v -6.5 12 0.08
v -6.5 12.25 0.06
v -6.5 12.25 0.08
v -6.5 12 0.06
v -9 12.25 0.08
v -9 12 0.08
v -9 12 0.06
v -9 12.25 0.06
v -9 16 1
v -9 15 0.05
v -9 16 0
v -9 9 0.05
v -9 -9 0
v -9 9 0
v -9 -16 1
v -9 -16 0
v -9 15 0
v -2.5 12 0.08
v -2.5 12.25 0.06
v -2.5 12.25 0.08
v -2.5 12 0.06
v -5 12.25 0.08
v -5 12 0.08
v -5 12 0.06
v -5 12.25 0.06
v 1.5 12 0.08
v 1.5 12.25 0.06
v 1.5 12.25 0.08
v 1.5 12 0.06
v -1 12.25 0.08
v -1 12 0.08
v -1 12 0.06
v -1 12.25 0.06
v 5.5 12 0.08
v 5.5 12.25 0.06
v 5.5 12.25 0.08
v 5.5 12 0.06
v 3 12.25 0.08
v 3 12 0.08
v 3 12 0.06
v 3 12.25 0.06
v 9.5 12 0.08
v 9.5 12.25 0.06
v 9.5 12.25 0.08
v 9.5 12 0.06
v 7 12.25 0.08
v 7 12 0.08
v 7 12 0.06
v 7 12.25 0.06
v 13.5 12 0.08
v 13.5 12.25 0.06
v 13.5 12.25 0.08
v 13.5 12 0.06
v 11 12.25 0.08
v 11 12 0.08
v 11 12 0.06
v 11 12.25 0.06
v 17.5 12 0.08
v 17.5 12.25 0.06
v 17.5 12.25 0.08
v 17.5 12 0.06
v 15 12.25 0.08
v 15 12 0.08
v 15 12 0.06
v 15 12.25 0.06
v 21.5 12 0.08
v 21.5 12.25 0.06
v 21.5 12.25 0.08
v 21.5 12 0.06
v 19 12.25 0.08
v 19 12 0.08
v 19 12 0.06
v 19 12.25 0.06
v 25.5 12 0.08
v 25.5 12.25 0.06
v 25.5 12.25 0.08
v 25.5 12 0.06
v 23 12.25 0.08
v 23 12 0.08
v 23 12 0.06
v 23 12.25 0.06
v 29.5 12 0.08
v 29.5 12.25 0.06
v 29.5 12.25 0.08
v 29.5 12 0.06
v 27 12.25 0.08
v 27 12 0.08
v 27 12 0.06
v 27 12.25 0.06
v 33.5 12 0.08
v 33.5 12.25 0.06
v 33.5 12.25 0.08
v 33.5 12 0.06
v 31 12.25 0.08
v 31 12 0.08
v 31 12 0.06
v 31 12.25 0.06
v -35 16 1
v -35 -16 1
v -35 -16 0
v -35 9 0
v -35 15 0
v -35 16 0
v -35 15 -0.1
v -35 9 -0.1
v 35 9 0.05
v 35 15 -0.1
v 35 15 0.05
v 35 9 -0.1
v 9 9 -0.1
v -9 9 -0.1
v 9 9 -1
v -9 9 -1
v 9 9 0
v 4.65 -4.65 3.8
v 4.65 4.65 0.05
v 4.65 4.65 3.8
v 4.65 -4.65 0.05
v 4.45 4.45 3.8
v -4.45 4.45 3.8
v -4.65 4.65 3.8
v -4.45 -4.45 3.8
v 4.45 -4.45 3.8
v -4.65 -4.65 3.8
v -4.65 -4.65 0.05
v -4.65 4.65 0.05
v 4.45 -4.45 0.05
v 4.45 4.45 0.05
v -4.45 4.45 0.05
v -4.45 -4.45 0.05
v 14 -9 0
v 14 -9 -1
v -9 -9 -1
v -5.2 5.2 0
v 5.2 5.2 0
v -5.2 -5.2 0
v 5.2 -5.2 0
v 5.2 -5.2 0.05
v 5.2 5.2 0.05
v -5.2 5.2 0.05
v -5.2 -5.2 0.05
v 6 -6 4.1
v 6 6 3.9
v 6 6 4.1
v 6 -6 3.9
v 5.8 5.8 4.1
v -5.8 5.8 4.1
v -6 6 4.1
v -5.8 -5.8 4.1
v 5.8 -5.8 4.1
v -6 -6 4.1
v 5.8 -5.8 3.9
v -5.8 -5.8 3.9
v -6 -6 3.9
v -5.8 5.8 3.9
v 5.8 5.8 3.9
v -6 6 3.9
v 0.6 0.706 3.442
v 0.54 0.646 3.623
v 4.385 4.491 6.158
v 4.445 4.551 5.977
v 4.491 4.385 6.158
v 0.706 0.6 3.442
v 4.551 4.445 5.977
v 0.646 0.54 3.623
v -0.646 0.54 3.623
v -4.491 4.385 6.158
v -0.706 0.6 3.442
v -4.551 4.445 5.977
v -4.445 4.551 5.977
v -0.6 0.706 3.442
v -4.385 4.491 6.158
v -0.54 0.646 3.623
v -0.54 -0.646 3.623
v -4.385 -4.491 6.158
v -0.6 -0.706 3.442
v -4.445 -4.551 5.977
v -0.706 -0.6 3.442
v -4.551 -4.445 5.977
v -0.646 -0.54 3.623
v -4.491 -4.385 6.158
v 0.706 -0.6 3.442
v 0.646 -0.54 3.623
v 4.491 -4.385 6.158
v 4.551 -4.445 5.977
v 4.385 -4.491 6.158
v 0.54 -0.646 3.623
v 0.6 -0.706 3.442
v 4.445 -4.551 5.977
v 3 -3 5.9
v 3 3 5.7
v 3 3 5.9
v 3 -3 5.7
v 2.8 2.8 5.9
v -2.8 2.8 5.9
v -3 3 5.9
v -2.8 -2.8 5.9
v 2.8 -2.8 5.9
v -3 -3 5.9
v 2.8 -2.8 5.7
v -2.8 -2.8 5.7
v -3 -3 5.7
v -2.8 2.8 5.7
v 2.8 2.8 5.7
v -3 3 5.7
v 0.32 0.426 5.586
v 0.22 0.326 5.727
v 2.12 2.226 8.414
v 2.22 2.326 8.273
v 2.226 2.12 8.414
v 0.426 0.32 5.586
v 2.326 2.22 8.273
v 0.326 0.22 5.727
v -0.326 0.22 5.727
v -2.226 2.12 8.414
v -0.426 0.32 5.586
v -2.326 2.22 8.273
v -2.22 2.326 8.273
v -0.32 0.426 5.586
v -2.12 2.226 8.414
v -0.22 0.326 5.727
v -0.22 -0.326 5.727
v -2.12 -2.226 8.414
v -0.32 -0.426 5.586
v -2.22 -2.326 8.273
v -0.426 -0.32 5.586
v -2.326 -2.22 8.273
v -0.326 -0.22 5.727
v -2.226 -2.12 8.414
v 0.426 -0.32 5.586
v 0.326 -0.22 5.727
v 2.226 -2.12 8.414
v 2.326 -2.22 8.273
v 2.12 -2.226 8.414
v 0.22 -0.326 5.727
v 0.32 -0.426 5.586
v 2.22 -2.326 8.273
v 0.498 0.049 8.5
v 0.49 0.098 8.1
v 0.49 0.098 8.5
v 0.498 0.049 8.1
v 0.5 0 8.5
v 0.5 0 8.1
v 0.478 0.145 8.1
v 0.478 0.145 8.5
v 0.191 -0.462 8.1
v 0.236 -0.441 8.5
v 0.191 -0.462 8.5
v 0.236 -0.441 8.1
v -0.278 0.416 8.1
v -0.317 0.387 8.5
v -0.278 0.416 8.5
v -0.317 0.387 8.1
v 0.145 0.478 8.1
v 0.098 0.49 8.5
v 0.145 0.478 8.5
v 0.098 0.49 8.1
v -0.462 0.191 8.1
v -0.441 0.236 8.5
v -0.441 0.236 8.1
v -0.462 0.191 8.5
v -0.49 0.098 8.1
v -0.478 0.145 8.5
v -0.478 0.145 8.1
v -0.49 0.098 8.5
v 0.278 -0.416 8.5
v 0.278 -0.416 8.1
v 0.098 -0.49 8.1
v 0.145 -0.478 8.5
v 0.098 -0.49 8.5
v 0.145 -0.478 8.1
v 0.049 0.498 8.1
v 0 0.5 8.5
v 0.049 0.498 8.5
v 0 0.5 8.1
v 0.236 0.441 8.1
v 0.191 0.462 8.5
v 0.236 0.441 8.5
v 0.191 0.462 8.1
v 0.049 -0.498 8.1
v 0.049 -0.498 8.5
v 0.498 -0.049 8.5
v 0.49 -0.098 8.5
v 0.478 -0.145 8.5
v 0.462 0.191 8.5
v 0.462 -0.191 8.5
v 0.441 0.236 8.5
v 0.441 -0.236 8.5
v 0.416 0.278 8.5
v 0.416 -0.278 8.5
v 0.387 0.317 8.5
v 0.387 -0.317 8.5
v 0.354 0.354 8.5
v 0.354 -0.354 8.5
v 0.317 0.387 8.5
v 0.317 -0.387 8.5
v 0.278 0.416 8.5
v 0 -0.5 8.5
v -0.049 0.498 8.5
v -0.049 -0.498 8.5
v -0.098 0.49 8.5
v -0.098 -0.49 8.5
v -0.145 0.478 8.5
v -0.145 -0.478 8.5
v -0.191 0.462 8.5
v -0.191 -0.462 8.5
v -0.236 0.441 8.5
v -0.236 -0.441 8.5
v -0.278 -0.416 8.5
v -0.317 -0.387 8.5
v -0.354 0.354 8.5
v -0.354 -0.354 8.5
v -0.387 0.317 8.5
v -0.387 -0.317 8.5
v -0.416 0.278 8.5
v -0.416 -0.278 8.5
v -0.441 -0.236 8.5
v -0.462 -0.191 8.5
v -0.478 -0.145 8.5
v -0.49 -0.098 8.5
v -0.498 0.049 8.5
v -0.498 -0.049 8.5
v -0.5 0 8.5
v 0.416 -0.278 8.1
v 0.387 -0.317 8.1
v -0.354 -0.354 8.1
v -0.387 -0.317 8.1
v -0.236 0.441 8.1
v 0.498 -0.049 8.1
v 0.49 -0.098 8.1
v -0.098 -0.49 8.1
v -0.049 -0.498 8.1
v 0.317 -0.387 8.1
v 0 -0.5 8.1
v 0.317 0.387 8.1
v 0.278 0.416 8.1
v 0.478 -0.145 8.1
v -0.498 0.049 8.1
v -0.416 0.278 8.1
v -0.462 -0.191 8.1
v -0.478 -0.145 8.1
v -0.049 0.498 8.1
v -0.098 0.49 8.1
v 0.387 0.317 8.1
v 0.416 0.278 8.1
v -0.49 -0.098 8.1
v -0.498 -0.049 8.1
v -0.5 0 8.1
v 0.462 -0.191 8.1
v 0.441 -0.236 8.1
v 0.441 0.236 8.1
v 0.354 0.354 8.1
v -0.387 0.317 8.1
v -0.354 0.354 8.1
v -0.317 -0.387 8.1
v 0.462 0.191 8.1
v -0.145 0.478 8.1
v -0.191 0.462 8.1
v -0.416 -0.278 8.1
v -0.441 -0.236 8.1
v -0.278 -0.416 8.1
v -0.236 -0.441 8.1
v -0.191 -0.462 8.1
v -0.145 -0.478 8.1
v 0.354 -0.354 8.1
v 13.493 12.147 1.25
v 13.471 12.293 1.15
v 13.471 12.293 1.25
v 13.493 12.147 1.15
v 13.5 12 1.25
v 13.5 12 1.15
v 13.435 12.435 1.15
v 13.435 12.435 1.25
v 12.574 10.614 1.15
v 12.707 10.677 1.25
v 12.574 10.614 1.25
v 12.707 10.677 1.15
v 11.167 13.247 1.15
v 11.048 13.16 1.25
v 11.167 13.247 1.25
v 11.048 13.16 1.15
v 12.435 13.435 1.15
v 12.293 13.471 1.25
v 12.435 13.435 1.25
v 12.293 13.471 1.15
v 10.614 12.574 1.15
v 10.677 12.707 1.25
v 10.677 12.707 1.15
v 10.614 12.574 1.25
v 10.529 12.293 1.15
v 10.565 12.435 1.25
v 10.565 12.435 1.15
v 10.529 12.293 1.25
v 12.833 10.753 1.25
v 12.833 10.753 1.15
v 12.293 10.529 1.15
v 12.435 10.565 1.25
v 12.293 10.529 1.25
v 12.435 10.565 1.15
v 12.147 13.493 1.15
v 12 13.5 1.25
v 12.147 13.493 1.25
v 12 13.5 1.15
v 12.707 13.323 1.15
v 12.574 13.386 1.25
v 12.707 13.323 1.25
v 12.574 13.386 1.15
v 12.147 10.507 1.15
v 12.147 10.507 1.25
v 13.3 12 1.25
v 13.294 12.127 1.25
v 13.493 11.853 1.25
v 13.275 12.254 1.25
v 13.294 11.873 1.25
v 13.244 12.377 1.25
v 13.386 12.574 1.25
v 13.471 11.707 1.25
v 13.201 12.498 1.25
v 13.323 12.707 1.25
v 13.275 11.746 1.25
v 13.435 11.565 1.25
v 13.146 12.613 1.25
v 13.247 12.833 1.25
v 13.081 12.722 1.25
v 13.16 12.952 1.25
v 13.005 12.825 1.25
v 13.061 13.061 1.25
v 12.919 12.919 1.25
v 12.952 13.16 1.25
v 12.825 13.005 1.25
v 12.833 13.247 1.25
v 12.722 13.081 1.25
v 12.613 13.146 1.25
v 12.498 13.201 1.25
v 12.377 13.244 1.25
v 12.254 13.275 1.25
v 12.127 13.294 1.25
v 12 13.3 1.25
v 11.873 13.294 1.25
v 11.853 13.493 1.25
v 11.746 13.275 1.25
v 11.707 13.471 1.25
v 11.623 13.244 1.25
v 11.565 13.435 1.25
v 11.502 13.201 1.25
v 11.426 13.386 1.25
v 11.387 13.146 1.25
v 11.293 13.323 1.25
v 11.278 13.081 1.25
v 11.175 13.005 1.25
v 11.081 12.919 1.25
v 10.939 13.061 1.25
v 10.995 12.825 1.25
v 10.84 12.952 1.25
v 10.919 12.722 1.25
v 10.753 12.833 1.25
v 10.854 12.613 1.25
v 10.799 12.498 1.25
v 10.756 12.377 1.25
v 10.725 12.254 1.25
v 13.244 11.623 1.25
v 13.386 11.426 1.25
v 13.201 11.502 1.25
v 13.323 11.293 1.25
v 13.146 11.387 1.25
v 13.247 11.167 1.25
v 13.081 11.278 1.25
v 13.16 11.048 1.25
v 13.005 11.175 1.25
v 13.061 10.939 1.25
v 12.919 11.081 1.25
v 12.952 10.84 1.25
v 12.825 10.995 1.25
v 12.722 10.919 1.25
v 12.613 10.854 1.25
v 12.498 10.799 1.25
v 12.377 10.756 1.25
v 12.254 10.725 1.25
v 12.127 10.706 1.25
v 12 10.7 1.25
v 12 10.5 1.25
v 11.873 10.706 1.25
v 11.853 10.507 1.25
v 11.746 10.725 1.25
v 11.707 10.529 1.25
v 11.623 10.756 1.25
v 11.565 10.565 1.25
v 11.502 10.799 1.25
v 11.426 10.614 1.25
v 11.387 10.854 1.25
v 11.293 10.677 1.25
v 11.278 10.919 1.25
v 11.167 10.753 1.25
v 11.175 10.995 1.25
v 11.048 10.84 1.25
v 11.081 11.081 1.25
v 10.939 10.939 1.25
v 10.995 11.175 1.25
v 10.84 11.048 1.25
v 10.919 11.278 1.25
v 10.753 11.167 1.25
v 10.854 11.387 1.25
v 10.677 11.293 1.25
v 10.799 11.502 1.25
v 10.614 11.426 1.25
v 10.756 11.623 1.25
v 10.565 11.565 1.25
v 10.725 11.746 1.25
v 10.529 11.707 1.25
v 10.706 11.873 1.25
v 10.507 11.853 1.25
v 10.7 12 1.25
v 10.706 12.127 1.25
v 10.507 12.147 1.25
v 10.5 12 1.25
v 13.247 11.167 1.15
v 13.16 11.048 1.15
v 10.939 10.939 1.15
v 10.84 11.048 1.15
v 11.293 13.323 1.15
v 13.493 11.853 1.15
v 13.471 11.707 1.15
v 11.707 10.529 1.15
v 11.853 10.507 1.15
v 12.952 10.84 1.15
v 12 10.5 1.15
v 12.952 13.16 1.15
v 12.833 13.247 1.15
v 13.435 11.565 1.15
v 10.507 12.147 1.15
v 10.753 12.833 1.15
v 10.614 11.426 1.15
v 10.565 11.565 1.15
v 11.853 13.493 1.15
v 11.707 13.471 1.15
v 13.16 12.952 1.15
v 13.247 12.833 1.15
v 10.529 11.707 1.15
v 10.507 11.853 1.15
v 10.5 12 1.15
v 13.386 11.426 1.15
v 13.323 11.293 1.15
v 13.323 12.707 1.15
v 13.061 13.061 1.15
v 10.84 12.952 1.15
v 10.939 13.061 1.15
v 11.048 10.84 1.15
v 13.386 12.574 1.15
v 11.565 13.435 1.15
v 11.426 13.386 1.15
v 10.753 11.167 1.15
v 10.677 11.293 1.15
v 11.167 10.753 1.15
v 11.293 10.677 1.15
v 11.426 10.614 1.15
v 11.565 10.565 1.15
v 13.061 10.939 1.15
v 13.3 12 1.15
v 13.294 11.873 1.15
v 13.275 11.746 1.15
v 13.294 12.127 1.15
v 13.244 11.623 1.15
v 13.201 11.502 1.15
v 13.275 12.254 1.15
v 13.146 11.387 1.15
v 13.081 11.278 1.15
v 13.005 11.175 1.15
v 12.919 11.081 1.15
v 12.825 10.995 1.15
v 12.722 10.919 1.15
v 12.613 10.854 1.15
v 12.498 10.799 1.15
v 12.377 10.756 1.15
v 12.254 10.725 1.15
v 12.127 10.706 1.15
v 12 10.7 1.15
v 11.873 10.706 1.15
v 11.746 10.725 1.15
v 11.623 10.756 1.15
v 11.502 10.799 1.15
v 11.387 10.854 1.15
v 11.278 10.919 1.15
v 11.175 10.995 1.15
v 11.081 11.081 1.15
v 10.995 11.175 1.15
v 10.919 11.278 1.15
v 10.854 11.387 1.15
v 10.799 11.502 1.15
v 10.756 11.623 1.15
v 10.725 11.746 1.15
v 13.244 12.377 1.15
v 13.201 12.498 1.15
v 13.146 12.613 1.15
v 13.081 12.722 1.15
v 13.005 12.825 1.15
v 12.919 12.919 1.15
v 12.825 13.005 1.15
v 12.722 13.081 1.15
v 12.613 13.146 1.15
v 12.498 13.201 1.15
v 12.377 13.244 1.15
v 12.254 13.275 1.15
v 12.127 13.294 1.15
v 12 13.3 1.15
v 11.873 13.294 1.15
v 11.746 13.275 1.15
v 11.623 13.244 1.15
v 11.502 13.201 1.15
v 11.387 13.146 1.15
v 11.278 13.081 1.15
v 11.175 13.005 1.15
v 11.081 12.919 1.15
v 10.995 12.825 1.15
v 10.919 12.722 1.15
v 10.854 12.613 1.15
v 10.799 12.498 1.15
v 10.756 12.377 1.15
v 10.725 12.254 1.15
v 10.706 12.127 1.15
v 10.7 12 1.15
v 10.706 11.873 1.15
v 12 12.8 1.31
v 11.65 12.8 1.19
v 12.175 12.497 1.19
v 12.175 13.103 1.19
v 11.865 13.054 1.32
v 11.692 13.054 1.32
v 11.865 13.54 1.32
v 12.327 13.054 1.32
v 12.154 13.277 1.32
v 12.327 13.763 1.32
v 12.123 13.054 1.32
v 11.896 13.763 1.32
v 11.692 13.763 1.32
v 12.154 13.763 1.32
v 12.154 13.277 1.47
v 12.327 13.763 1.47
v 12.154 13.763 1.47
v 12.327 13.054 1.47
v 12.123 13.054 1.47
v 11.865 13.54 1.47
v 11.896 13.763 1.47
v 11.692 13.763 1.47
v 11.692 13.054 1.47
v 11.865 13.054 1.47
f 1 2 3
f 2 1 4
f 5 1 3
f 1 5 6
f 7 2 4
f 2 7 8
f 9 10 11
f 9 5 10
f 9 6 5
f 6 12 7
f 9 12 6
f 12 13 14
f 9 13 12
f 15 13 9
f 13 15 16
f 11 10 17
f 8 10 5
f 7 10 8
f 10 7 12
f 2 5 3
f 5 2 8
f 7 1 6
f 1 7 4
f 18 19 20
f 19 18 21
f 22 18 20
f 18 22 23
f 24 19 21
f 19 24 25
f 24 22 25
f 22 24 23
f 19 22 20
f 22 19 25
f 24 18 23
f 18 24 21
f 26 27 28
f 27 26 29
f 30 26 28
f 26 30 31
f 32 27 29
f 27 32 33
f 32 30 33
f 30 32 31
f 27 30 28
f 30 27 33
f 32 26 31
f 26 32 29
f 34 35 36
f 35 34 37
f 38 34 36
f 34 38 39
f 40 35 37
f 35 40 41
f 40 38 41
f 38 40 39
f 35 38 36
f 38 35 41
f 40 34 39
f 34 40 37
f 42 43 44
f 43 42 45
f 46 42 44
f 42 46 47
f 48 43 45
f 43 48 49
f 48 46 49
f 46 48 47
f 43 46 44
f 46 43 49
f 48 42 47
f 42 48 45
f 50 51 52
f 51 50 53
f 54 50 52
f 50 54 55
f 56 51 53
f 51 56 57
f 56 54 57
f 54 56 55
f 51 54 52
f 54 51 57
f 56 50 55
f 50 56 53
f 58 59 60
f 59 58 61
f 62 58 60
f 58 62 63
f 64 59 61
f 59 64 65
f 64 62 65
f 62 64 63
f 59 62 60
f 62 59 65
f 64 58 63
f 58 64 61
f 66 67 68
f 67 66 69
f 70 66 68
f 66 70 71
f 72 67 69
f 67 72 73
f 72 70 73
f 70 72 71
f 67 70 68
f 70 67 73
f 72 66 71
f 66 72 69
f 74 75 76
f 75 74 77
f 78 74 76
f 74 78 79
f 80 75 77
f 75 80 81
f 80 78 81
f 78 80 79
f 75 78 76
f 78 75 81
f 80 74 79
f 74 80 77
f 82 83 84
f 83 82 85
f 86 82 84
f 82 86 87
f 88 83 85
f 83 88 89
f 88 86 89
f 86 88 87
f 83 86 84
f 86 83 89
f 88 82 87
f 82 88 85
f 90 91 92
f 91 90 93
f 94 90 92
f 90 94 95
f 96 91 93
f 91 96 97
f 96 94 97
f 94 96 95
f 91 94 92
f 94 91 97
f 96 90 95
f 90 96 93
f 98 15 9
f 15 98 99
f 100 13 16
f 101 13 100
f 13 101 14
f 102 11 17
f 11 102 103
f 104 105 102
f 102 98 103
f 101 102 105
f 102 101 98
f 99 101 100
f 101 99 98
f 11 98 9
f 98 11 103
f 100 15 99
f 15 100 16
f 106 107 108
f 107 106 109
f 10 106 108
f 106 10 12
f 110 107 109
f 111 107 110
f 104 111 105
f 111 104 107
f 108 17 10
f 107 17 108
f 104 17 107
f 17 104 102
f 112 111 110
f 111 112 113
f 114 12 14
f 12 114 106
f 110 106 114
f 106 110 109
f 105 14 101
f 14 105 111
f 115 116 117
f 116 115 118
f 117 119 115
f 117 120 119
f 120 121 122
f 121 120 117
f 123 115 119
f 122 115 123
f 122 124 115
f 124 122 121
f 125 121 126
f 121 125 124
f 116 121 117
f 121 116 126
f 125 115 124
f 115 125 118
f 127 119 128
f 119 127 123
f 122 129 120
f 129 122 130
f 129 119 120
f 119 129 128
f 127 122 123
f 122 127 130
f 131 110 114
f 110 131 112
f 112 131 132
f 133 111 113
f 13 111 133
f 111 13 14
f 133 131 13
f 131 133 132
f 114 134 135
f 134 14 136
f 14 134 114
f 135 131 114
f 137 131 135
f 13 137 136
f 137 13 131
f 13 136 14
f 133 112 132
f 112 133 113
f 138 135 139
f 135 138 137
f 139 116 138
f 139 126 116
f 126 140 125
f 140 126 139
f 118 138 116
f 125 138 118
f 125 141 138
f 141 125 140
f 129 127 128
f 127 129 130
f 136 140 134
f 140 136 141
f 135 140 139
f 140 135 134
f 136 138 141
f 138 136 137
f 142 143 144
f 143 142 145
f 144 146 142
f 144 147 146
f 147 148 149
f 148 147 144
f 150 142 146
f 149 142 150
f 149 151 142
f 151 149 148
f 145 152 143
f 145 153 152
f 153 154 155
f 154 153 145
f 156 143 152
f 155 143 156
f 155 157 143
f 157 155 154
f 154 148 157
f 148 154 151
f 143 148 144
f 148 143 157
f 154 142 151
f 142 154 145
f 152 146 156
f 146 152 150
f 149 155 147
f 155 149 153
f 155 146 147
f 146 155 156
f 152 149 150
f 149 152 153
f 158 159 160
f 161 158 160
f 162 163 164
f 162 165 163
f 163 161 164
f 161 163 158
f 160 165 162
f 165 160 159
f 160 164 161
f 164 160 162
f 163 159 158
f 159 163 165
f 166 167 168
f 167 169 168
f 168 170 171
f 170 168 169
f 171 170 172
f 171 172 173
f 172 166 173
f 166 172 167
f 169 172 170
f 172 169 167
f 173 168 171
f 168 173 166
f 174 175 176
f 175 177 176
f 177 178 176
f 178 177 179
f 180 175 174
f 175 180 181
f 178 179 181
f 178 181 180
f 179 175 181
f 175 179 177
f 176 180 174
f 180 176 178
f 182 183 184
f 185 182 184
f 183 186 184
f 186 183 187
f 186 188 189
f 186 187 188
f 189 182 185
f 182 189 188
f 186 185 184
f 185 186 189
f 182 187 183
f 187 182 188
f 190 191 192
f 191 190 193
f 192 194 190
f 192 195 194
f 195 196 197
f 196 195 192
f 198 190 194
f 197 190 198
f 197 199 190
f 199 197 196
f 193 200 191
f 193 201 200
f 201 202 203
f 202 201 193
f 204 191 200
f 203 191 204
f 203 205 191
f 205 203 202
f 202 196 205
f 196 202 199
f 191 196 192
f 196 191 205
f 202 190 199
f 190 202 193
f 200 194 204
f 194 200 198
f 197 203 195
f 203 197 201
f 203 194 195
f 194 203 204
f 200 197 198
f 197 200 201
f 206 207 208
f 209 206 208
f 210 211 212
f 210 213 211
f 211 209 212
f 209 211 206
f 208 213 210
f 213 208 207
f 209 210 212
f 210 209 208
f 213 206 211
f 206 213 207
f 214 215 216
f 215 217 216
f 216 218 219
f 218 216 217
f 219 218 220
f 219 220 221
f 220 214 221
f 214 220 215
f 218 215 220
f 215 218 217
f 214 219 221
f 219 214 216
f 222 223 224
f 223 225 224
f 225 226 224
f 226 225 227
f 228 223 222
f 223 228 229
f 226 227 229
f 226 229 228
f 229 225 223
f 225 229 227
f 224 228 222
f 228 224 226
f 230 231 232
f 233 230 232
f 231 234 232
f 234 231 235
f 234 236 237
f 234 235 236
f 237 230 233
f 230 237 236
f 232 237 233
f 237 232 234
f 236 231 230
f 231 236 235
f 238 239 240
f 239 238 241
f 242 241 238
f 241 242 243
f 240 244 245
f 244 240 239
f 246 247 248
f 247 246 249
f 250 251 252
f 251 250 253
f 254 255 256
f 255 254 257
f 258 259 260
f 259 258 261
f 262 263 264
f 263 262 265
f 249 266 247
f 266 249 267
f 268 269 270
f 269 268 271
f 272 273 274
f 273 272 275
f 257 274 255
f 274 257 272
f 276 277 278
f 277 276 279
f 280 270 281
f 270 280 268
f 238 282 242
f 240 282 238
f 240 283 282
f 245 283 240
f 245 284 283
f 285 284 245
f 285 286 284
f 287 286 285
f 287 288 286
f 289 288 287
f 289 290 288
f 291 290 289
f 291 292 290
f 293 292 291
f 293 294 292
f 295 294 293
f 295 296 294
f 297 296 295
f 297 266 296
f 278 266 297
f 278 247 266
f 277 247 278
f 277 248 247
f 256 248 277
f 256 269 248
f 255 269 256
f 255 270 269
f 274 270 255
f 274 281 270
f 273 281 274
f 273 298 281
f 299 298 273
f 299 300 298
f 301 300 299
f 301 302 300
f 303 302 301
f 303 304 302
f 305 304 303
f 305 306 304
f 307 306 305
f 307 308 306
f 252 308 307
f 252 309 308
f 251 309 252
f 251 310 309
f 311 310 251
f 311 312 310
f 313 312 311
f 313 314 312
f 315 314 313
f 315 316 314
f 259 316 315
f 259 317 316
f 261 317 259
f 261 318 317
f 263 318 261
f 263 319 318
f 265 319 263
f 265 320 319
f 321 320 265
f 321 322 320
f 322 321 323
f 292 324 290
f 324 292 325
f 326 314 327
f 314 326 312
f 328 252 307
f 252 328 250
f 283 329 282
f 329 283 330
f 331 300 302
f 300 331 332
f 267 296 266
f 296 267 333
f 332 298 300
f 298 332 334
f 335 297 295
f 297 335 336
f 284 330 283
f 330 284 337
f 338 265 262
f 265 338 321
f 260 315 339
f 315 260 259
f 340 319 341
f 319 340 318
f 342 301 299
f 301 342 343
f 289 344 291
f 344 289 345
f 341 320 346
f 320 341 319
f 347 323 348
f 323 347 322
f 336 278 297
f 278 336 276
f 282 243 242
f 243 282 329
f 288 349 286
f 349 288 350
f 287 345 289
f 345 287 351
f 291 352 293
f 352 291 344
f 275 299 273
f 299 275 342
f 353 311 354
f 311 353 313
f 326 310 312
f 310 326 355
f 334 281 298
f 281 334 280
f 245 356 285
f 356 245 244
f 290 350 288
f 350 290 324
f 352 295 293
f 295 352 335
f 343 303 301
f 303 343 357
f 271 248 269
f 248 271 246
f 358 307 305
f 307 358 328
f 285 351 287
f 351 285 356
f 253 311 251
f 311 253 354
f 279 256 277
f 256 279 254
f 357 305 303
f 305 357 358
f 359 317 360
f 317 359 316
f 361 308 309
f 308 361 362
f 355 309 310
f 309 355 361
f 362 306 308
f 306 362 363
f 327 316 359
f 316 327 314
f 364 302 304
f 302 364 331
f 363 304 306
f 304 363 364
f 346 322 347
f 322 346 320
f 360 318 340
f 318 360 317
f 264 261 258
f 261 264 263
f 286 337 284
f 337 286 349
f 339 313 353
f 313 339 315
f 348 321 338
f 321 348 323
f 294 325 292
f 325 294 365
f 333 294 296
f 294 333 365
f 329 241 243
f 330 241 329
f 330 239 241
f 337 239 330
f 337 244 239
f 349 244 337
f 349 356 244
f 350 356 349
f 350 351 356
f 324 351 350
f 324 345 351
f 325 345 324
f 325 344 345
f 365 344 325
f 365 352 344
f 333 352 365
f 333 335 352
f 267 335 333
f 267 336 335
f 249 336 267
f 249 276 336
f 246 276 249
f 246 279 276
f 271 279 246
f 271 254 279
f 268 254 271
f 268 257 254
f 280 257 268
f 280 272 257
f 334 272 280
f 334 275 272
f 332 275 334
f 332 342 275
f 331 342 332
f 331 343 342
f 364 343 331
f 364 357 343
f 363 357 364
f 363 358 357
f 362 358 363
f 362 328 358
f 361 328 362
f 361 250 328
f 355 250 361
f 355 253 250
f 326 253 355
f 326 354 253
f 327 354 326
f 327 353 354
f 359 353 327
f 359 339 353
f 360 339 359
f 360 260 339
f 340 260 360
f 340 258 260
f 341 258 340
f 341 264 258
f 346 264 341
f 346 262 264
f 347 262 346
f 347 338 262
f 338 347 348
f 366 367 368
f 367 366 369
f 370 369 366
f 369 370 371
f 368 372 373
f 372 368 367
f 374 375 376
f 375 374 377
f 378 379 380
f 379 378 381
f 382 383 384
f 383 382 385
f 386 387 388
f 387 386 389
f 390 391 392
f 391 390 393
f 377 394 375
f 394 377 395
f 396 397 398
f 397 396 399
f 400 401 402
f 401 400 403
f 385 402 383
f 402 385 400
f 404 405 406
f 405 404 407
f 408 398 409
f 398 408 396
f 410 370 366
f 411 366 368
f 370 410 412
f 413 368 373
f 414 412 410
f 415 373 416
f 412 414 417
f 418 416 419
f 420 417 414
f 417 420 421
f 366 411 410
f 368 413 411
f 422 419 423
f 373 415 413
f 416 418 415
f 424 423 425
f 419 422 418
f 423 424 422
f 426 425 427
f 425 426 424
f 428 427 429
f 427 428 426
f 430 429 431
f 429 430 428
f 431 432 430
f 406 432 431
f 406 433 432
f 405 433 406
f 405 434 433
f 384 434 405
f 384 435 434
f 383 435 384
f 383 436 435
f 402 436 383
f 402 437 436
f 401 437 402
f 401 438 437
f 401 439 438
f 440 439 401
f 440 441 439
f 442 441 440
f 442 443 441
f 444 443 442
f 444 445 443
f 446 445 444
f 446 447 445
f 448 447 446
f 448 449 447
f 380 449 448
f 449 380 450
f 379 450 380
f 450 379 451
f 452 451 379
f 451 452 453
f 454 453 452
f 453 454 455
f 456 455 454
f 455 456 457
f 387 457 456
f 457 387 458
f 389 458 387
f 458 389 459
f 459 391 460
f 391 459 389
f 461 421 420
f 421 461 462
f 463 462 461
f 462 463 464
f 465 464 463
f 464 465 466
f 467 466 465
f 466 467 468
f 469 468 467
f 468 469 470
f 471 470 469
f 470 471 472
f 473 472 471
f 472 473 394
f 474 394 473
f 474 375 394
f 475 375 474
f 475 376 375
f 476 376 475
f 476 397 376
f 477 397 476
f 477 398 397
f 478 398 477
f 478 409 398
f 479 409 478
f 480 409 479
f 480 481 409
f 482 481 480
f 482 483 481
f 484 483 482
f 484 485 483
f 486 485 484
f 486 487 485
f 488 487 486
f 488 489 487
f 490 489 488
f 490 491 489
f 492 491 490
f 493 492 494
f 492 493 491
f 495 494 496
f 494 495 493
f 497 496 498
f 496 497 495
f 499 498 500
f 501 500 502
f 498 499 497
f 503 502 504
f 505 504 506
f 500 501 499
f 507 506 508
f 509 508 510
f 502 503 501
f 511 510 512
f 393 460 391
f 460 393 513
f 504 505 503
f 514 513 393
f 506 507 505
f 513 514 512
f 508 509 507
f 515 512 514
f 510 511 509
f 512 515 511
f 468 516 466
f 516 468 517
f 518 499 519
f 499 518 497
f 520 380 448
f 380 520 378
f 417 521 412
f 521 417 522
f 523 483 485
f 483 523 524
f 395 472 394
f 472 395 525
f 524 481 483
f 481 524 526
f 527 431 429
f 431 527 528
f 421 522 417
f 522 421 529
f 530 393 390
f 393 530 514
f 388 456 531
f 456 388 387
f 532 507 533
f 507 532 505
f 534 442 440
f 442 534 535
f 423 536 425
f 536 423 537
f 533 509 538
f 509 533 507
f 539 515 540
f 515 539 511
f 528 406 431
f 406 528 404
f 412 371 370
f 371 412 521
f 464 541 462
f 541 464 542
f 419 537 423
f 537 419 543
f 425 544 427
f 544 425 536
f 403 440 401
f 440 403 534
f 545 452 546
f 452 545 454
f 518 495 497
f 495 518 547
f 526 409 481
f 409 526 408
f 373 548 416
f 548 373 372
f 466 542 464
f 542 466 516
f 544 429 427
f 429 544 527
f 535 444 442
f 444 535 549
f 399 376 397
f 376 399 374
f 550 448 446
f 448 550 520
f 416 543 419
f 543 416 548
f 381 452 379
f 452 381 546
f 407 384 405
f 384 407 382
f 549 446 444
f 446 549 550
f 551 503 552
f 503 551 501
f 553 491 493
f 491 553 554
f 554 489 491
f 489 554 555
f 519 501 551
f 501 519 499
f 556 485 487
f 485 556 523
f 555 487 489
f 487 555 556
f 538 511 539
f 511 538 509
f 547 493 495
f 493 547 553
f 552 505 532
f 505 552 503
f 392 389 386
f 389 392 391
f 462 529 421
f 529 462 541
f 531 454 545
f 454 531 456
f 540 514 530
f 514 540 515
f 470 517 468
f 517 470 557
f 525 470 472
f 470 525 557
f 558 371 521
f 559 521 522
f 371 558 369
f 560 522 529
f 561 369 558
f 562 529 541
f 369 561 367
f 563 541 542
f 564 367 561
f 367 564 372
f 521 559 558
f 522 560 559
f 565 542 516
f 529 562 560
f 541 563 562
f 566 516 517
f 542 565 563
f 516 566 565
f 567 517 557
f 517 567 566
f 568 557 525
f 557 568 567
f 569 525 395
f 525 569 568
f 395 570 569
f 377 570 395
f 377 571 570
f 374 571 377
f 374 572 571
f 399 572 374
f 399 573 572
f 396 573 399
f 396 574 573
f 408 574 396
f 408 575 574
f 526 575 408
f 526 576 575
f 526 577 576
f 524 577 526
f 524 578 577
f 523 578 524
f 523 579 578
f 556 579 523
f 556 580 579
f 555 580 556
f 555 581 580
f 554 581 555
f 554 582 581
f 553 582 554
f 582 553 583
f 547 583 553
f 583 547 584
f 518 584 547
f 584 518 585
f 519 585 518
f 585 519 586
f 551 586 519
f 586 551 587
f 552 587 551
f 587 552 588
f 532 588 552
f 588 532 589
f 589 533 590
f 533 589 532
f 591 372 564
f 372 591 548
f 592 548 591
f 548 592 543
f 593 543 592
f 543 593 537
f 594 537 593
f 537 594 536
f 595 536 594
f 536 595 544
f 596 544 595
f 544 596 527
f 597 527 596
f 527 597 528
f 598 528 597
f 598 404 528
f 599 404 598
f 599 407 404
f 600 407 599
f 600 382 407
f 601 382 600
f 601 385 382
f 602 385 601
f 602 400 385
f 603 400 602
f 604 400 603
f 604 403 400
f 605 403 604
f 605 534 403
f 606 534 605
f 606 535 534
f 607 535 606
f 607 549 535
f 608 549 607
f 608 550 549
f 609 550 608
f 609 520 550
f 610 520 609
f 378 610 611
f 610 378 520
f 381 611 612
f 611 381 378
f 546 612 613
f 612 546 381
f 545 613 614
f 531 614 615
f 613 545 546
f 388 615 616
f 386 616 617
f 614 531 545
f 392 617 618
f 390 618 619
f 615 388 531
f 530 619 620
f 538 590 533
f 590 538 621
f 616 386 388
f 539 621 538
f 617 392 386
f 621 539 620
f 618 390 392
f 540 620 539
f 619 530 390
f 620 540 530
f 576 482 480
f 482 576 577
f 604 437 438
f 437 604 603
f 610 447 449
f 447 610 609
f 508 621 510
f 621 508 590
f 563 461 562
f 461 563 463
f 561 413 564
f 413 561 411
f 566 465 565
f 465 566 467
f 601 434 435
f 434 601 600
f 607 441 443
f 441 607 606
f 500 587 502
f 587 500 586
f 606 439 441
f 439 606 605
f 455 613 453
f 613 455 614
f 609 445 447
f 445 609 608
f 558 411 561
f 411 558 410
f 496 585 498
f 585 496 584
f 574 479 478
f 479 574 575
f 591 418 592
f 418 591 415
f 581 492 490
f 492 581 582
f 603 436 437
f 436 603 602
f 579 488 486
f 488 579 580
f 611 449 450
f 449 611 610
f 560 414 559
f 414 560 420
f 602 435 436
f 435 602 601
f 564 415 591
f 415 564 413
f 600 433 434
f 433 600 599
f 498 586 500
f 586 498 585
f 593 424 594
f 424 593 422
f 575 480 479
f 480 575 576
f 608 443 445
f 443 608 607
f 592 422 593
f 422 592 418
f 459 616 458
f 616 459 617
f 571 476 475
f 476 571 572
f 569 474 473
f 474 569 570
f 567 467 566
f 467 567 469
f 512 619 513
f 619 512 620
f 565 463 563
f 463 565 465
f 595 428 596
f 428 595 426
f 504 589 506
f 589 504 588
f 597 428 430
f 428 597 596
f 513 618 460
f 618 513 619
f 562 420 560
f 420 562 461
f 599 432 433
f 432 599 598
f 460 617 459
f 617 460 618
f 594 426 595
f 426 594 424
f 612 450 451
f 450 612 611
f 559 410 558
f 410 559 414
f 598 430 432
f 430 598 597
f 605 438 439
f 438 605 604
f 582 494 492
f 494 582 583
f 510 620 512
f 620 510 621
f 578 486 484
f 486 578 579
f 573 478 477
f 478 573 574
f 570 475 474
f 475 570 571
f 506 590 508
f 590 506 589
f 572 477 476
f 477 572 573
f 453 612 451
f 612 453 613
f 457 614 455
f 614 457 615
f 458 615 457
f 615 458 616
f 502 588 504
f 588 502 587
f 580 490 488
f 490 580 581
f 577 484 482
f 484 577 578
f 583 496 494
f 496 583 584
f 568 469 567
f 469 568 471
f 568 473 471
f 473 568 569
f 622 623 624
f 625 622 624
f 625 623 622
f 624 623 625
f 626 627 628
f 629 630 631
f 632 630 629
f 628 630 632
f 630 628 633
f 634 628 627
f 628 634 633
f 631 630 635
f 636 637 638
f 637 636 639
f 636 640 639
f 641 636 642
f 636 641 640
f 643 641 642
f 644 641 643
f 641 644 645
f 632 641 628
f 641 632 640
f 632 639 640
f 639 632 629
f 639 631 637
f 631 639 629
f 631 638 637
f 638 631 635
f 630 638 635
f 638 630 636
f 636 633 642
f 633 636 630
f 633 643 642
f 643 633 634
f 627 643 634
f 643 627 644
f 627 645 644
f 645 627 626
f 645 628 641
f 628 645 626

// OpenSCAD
// =============================================================================================================
// MASJID NURUL FALAH SUKATANI — STEP 08: LIMASAN ROOF TRUSS FRAMING
// Parametric Architectural CSG Model (OpenSCAD)
//
// STRICT CIVIL MANDATE: NORTH AT TOP (+Y AXIS)
// 2-TIER LIMASAN ROOF TRUSS (RANGKA BAJA RINGAN / IWF) WITH CLERESTORY PYRAMID FRAME
// =============================================================================================================

$fn = 64;

poly_site = [ [-9, -9], [14, -9], [9, 9], [-9, 9] ];
grid_x = [-4.5, -1.5, 1.5, 4.5];
grid_y = [-4.5, -1.5, 1.5, 4.5];

// --------------------------------------------------------------------
// 1. SURROUNDINGS
// --------------------------------------------------------------------
module surroundings() {
    // West Land (+1.00m elevated neighbor terrain)
    color([0.22, 0.42, 0.24]) {
        translate([-22, 0, 0.5]) cube([26, 32, 1.0], center = true);
    }
    color([0.38, 0.32, 0.26]) {
        translate([-9.1, 0, 0.5]) cube([0.2, 28, 1.0], center = true);
    }
    // North Road 6.0m
    color([0.18, 0.20, 0.24]) {
        translate([-35, 9, -0.10]) cube([70, 6.0, 0.15]);
    }
    color([0.92, 0.92, 0.95]) {
        for (x = [-33 : 4 : 31]) {
            translate([x, 12, 0.06]) cube([2.5, 0.25, 0.02]);
        }
    }
}

// --------------------------------------------------------------------
// 2. LOWER STRUCTURE
// --------------------------------------------------------------------
module lower_structure() {
    color([0.28, 0.52, 0.30]) {
        translate([0, 0, -1.0]) linear_extrude(height = 1.0) polygon(poly_site);
    }
    color([0.72, 0.75, 0.80]) {
        translate([0, 0, 0.0]) cube([10.4, 10.4, 0.10], center = true);
    }
    // Perimeter Walls
    color([0.88, 0.88, 0.85, 0.7]) {
        difference() {
            translate([0, 0, 1.9]) cube([9.3, 9.3, 3.8], center = true);
            translate([0, 0, 1.9]) cube([8.9, 8.9, 4.0], center = true);
        }
    }
}

// --------------------------------------------------------------------
// 3. 2-TIER LIMASAN ROOF TRUSS FRAMING
// --------------------------------------------------------------------
module roof_truss_framing() {
    // Tier 1 (Lower Canopy Framing 12m x 12m)
    color([0.0, 0.75, 0.95]) { // Glowing Steel Blue Trusses
        // Outer Eaves Framing
        translate([0, 0, 4.0]) {
            difference() {
                cube([12.0, 12.0, 0.20], center = true);
                cube([11.6, 11.6, 0.30], center = true);
            }
        }
        // Sloped Hip Rafters
        for (a = [45, 135, 225, 315]) {
            rotate([0, 0, a])
                translate([3.6, 0, 4.8])
                    rotate([0, -25, 0])
                        cube([6.0, 0.15, 0.20], center = true);
        }
    }

    // Tier 2 (Upper Limasan Pyramid Framing 6m x 6m x 3m height)
    color([0.95, 0.45, 0.15]) { // Orange/Amber Steel Rafters
        translate([0, 0, 5.8]) {
            // Upper Ring Frame
            difference() {
                cube([6.0, 6.0, 0.20], center = true);
                cube([5.6, 5.6, 0.30], center = true);
            }
            // 4 Main Hip Rafters to Ridge Peak
            for (a = [45, 135, 225, 315]) {
                rotate([0, 0, a])
                    translate([1.8, 0, 1.2])
                        rotate([0, -45, 0])
                            cube([3.8, 0.15, 0.20], center = true);
            }
            // Apex Crown Peak Ring
            translate([0, 0, 2.5])
                cylinder(h = 0.4, r = 0.5, center = true);
        }
    }
}

// --------------------------------------------------------------------
// 4. 3D COMPASS ROSE (North Pointer strictly at +Y)
// --------------------------------------------------------------------
module compass_rose_3d() {
    translate([12, 12, 1.2]) {
        color([0.0, 0.75, 0.95])
            difference() {
                cylinder(h = 0.10, r = 1.5, center = true);
                cylinder(h = 0.12, r = 1.3, center = true);
            }
        color([0.95, 0.2, 0.2]) {
            translate([0, 0.8, 0.05])
                rotate([0, 0, 180])
                    cylinder(h = 0.12, r1 = 0.35, r2 = 0.0, $fn = 3, center = true);
        }
        color([0.9, 0.9, 0.9]) {
            translate([0, 1.4, 0.12])
                linear_extrude(height = 0.15)
                    text("N", size = 0.7, font = "Liberation Sans:style=Bold", halign = "center", valign = "center");
        }
    }
}

// --------------------------------------------------------------------
// 5. MASTER STEP 08 ASSEMBLY
// --------------------------------------------------------------------
module step_08_roof_truss_master() {
    surroundings();
    lower_structure();
    roof_truss_framing();
    compass_rose_3d();
}

step_08_roof_truss_master();
